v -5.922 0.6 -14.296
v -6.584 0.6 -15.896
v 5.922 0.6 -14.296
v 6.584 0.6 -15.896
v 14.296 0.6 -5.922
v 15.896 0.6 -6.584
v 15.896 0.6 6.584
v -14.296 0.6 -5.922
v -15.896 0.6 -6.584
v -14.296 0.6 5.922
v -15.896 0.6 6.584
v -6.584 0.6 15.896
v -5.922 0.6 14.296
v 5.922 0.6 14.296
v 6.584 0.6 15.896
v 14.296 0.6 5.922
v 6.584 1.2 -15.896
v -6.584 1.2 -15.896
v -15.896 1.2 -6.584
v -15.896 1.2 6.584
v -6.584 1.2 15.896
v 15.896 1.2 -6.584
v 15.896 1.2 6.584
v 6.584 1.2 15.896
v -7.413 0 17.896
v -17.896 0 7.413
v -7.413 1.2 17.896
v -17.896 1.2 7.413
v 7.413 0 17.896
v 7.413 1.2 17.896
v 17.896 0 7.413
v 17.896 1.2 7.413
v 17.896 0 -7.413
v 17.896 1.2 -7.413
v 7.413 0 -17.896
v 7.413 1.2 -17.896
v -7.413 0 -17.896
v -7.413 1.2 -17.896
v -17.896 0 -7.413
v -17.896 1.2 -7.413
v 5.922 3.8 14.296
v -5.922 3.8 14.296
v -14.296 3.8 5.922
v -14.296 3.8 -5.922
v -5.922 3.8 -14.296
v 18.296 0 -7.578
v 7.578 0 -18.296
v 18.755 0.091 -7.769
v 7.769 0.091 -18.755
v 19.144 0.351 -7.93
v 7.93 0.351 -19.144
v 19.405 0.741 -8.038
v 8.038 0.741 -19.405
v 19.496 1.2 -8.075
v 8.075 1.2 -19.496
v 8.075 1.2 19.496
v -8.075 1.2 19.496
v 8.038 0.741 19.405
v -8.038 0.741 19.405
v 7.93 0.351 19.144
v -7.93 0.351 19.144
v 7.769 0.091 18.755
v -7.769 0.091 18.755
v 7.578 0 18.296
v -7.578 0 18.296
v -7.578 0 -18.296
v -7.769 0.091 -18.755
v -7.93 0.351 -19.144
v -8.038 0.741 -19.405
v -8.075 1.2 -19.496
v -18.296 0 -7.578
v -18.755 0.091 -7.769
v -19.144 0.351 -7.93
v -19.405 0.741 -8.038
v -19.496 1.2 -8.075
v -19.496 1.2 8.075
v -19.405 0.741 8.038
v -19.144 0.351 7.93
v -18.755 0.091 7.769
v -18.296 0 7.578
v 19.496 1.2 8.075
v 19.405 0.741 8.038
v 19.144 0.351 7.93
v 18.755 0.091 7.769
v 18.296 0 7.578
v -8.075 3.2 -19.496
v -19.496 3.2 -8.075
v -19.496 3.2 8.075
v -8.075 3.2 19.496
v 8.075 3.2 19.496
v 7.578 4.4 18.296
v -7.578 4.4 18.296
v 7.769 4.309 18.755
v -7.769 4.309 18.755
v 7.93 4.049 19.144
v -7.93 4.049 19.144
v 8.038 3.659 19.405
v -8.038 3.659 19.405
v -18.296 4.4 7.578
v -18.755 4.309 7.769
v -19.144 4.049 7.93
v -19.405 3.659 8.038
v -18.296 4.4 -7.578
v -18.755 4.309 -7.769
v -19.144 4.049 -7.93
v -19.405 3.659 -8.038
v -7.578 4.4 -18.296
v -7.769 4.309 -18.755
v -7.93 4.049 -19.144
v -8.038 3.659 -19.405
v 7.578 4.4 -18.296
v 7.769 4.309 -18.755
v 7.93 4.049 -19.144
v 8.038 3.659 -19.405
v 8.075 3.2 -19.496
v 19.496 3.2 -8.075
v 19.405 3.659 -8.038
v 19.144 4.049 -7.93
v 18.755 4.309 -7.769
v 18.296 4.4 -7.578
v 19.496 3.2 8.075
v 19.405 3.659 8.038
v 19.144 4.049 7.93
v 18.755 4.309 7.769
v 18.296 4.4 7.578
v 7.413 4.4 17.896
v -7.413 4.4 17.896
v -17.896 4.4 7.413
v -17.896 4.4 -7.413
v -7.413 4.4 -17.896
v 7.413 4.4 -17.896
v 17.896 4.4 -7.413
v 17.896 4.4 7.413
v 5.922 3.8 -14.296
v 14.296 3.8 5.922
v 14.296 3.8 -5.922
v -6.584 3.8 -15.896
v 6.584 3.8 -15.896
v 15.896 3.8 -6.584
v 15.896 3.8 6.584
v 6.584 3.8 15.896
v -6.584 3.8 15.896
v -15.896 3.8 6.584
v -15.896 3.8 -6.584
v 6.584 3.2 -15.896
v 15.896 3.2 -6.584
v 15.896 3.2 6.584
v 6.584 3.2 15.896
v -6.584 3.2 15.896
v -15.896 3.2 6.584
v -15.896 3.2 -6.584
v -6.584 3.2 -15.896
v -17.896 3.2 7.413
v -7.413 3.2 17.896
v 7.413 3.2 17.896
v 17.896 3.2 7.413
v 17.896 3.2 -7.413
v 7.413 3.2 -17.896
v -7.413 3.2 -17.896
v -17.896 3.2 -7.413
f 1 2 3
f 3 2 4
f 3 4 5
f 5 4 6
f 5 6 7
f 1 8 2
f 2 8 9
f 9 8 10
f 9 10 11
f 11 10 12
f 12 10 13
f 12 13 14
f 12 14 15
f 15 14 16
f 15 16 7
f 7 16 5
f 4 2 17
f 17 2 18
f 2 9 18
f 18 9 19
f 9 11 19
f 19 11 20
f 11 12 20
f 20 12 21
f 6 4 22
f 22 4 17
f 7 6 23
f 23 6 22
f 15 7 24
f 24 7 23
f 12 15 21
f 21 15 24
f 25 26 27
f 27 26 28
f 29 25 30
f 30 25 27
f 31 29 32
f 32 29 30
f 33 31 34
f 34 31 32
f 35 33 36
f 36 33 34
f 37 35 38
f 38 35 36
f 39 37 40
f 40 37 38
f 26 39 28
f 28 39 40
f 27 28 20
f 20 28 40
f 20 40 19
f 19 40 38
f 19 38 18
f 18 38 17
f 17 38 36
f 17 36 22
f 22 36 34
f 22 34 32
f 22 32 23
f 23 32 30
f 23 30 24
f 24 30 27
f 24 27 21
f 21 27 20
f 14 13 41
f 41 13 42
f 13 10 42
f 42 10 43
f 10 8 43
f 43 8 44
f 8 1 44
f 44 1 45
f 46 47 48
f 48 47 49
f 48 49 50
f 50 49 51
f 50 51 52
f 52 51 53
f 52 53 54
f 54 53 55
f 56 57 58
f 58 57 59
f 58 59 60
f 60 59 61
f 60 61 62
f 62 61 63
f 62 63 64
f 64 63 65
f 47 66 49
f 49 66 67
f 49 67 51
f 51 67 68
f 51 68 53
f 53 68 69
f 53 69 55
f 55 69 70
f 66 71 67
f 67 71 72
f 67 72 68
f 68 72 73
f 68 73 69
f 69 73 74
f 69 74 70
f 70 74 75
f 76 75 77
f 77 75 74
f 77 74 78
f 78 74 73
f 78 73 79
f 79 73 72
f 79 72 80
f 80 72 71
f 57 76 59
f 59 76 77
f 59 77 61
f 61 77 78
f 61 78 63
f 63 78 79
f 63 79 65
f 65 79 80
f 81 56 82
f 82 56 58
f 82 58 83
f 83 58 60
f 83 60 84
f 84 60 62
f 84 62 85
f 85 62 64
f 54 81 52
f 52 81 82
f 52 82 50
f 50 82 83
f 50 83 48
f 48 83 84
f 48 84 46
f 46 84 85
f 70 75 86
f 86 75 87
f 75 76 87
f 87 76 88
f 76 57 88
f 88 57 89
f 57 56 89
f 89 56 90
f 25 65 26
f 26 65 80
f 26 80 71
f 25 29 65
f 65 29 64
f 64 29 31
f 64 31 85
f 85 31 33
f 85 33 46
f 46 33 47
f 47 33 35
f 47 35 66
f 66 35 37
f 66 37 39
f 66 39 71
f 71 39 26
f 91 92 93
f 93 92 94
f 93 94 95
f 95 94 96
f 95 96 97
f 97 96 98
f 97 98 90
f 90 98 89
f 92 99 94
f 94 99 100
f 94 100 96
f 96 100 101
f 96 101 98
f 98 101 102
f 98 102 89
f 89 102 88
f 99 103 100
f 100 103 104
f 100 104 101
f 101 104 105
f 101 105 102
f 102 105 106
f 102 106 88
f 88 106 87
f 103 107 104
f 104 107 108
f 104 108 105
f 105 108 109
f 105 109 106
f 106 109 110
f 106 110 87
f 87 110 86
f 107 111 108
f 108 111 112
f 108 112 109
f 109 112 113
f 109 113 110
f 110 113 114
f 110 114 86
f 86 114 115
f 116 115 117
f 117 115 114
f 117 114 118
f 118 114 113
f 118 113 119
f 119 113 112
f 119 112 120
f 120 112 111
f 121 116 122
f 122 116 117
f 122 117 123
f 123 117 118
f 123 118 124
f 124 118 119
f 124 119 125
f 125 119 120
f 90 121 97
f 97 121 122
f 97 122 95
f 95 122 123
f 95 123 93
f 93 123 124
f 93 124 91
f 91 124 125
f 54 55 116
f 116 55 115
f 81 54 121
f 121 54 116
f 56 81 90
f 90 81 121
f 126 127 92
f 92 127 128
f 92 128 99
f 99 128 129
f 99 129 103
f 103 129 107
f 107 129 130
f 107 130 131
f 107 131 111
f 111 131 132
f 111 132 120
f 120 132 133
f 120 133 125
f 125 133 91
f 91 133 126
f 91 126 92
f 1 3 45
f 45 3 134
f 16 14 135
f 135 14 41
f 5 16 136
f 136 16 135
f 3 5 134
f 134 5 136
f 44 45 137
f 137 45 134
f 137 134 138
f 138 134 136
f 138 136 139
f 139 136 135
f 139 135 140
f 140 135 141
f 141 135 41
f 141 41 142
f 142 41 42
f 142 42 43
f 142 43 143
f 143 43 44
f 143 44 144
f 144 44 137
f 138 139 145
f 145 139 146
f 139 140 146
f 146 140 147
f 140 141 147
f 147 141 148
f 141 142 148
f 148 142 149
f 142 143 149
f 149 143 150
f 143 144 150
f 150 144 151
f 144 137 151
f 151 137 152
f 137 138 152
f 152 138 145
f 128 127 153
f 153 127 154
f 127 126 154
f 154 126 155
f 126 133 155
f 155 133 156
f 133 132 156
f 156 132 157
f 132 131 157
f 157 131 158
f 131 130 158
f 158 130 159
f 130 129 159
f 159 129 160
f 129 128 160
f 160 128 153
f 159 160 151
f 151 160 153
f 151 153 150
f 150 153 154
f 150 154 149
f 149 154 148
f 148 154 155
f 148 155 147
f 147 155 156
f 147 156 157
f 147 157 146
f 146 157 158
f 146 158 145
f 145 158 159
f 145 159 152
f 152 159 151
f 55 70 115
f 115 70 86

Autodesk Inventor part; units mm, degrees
ref_plane "YZ Plane" through (0, 0, 0) normal (1, 0, 0) x (0, 1, 0)
ref_plane "XZ Plane" through (0, 0, 0) normal (0, 1, 0) x (-1, 0, 0)
sketch "스케치1" plane through (0, 0, 0) normal (0, 1, 0) x (-1, 0, 0)
  line L0 (-16.2959, 6.75) -> (-6.75, 16.2959)
  line L1 (-6.75, 16.2959) -> (6.75, 16.2959)
  line L2 (6.75, 16.2959) -> (16.2959, 6.75)
  line L3 (16.2959, 6.75) -> (16.2959, -6.75)
  line L4 (16.2959, -6.75) -> (6.75, -16.2959)
  line L5 (6.75, -16.2959) -> (-6.75, -16.2959)
  line L6 (-6.75, -16.2959) -> (-16.2959, -6.75)
  line L7 (-16.2959, -6.75) -> (-16.2959, 6.75)
  line L8 (19.4959, 8.0755) -> (19.4959, -8.0755)
  line L9 (19.4959, -8.0755) -> (8.0755, -19.4959)
  line L10 (8.0755, -19.4959) -> (-8.0755, -19.4959)
  line L11 (-8.0755, -19.4959) -> (-19.4959, -8.0755)
  line L12 (-19.4959, -8.0755) -> (-19.4959, 8.0755)
  line L13 (-19.4959, 8.0755) -> (-8.0755, 19.4959)
  line L14 (-8.0755, 19.4959) -> (8.0755, 19.4959)
  line L15 (8.0755, 19.4959) -> (19.4959, 8.0755)
  point P0 (0, 0)
  point P1 (0, 0)
  point P2 (0, 0)
  dimension "d0" = 13.5
  dimension "d1" = 3.2
extrude "돌출1" add sketch "스케치1" along normal blind 4.4 contours L0 L1 L2 L3 L4 L5 L6 L7 | L8 L9 L10 L11 L12 L13 L14 L15
sketch "스케치14" plane through (0, 4.4, 0) normal (0, 1, 0) x (1, 0, 0)
  line L0 (6.5843, -15.8959) -> (-6.5843, -15.8959)
  line L1 (-6.5843, -15.8959) -> (-15.8959, -6.5843)
  line L2 (-15.8959, -6.5843) -> (-15.8959, 6.5843)
  line L3 (-15.8959, 6.5843) -> (-6.5843, 15.8959)
  line L4 (-6.5843, 15.8959) -> (6.5843, 15.8959)
  line L5 (6.5843, 15.8959) -> (15.8959, 6.5843)
  line L6 (15.8959, 6.5843) -> (15.8959, -6.5843)
  line L7 (15.8959, -6.5843) -> (6.5843, -15.8959)
  line L8 (-7.4127, 17.8959) -> (7.4127, 17.8959)
  line L9 (7.4127, 17.8959) -> (17.8959, 7.4127)
  line L10 (17.8959, 7.4127) -> (17.8959, -7.4127)
  line L11 (17.8959, -7.4127) -> (7.4127, -17.8959)
  line L12 (7.4127, -17.8959) -> (-7.4127, -17.8959)
  line L13 (-7.4127, -17.8959) -> (-17.8959, -7.4127)
  line L14 (-17.8959, -7.4127) -> (-17.8959, 7.4127)
  line L15 (-17.8959, 7.4127) -> (-7.4127, 17.8959)
  line L16 (19.4959, -8.0755) -> (19.4959, 8.0755) projected
  point P0 (0, 0)
  point P1 (0, 0)
  point P2 (0, 0)
  dimension "d138" = 2
  dimension "d139" = 1.6
extrude "돌출16" cut sketch "스케치14" against normal blind 1.2
sketch "스케치15" plane through (0, 4.4, 0) normal (0, 1, 0) x (1, 0, 0)
  line L0 (-15.8959, -6.5843) -> (-6.5843, -15.8959) projected
  line L1 (-6.5843, -15.8959) -> (6.5843, -15.8959) projected
  line L2 (6.5843, -15.8959) -> (15.8959, -6.5843) projected
  line L3 (15.8959, -6.5843) -> (15.8959, 6.5843) projected
  line L4 (15.8959, 6.5843) -> (6.5843, 15.8959) projected
  line L5 (6.5843, 15.8959) -> (-6.5843, 15.8959) projected
  line L6 (-6.5843, 15.8959) -> (-15.8959, 6.5843) projected
  line L7 (-15.8959, 6.5843) -> (-15.8959, -6.5843) projected
  point P0 (0, 0)
extrude "돌출17" cut sketch "스케치15" against normal blind 0.6
sketch "스케치16" plane through (0, 3.8, 0) normal (0, 1, 0) x (1, 0, 0)
  line L0 (-5.9216, 14.2959) -> (5.9216, 14.2959)
  line L1 (5.9216, 14.2959) -> (14.2959, 5.9216)
  line L2 (14.2959, 5.9216) -> (14.2959, -5.9216)
  line L3 (14.2959, -5.9216) -> (5.9216, -14.2959)
  line L4 (5.9216, -14.2959) -> (-5.9216, -14.2959)
  line L5 (-5.9216, -14.2959) -> (-14.2959, -5.9216)
  line L6 (-14.2959, -5.9216) -> (-14.2959, 5.9216)
  line L7 (-14.2959, 5.9216) -> (-5.9216, 14.2959)
  line L8 (15.8959, 6.5843) -> (15.8959, -6.5843) projected
  point P0 (0, 0)
  point P1 (0, 0)
  dimension "d144" = 1.6
extrude "돌출18" cut sketch "스케치16" against normal up to surface (3.8 mm away)
fillet "모깎기2" radius 1.2 16 edges at (0, 4.4, -19.4959) (-13.7857, 4.4, -13.7857) (13.7857, 4.4, -13.7857) (19.4959, 4.4, 0) (13.7857, 4.4, 13.7857) (0, 4.4, 19.4959) (-13.7857, 4.4, 13.7857) (-19.4959, 4.4, 0) (-19.4959, 0, 0) (-13.7857, 0, 13.7857) (0, 0, 19.4959) (13.7857, 0, 13.7857) (-13.7857, 0, -13.7857) (0, 0, -19.4959) (19.4959, 0, 0) (13.7857, 0, -13.7857)
ref_plane "작업 평면3" through (0, 2.2, 0) normal (0, -1, 0) x (1, 0, 0)
mirror "미러6" about plane through (0, 2.2, 0) normal (0, -1, 0) of "돌출17", "돌출16"
properties part number "OV-PAM_ring_2"
